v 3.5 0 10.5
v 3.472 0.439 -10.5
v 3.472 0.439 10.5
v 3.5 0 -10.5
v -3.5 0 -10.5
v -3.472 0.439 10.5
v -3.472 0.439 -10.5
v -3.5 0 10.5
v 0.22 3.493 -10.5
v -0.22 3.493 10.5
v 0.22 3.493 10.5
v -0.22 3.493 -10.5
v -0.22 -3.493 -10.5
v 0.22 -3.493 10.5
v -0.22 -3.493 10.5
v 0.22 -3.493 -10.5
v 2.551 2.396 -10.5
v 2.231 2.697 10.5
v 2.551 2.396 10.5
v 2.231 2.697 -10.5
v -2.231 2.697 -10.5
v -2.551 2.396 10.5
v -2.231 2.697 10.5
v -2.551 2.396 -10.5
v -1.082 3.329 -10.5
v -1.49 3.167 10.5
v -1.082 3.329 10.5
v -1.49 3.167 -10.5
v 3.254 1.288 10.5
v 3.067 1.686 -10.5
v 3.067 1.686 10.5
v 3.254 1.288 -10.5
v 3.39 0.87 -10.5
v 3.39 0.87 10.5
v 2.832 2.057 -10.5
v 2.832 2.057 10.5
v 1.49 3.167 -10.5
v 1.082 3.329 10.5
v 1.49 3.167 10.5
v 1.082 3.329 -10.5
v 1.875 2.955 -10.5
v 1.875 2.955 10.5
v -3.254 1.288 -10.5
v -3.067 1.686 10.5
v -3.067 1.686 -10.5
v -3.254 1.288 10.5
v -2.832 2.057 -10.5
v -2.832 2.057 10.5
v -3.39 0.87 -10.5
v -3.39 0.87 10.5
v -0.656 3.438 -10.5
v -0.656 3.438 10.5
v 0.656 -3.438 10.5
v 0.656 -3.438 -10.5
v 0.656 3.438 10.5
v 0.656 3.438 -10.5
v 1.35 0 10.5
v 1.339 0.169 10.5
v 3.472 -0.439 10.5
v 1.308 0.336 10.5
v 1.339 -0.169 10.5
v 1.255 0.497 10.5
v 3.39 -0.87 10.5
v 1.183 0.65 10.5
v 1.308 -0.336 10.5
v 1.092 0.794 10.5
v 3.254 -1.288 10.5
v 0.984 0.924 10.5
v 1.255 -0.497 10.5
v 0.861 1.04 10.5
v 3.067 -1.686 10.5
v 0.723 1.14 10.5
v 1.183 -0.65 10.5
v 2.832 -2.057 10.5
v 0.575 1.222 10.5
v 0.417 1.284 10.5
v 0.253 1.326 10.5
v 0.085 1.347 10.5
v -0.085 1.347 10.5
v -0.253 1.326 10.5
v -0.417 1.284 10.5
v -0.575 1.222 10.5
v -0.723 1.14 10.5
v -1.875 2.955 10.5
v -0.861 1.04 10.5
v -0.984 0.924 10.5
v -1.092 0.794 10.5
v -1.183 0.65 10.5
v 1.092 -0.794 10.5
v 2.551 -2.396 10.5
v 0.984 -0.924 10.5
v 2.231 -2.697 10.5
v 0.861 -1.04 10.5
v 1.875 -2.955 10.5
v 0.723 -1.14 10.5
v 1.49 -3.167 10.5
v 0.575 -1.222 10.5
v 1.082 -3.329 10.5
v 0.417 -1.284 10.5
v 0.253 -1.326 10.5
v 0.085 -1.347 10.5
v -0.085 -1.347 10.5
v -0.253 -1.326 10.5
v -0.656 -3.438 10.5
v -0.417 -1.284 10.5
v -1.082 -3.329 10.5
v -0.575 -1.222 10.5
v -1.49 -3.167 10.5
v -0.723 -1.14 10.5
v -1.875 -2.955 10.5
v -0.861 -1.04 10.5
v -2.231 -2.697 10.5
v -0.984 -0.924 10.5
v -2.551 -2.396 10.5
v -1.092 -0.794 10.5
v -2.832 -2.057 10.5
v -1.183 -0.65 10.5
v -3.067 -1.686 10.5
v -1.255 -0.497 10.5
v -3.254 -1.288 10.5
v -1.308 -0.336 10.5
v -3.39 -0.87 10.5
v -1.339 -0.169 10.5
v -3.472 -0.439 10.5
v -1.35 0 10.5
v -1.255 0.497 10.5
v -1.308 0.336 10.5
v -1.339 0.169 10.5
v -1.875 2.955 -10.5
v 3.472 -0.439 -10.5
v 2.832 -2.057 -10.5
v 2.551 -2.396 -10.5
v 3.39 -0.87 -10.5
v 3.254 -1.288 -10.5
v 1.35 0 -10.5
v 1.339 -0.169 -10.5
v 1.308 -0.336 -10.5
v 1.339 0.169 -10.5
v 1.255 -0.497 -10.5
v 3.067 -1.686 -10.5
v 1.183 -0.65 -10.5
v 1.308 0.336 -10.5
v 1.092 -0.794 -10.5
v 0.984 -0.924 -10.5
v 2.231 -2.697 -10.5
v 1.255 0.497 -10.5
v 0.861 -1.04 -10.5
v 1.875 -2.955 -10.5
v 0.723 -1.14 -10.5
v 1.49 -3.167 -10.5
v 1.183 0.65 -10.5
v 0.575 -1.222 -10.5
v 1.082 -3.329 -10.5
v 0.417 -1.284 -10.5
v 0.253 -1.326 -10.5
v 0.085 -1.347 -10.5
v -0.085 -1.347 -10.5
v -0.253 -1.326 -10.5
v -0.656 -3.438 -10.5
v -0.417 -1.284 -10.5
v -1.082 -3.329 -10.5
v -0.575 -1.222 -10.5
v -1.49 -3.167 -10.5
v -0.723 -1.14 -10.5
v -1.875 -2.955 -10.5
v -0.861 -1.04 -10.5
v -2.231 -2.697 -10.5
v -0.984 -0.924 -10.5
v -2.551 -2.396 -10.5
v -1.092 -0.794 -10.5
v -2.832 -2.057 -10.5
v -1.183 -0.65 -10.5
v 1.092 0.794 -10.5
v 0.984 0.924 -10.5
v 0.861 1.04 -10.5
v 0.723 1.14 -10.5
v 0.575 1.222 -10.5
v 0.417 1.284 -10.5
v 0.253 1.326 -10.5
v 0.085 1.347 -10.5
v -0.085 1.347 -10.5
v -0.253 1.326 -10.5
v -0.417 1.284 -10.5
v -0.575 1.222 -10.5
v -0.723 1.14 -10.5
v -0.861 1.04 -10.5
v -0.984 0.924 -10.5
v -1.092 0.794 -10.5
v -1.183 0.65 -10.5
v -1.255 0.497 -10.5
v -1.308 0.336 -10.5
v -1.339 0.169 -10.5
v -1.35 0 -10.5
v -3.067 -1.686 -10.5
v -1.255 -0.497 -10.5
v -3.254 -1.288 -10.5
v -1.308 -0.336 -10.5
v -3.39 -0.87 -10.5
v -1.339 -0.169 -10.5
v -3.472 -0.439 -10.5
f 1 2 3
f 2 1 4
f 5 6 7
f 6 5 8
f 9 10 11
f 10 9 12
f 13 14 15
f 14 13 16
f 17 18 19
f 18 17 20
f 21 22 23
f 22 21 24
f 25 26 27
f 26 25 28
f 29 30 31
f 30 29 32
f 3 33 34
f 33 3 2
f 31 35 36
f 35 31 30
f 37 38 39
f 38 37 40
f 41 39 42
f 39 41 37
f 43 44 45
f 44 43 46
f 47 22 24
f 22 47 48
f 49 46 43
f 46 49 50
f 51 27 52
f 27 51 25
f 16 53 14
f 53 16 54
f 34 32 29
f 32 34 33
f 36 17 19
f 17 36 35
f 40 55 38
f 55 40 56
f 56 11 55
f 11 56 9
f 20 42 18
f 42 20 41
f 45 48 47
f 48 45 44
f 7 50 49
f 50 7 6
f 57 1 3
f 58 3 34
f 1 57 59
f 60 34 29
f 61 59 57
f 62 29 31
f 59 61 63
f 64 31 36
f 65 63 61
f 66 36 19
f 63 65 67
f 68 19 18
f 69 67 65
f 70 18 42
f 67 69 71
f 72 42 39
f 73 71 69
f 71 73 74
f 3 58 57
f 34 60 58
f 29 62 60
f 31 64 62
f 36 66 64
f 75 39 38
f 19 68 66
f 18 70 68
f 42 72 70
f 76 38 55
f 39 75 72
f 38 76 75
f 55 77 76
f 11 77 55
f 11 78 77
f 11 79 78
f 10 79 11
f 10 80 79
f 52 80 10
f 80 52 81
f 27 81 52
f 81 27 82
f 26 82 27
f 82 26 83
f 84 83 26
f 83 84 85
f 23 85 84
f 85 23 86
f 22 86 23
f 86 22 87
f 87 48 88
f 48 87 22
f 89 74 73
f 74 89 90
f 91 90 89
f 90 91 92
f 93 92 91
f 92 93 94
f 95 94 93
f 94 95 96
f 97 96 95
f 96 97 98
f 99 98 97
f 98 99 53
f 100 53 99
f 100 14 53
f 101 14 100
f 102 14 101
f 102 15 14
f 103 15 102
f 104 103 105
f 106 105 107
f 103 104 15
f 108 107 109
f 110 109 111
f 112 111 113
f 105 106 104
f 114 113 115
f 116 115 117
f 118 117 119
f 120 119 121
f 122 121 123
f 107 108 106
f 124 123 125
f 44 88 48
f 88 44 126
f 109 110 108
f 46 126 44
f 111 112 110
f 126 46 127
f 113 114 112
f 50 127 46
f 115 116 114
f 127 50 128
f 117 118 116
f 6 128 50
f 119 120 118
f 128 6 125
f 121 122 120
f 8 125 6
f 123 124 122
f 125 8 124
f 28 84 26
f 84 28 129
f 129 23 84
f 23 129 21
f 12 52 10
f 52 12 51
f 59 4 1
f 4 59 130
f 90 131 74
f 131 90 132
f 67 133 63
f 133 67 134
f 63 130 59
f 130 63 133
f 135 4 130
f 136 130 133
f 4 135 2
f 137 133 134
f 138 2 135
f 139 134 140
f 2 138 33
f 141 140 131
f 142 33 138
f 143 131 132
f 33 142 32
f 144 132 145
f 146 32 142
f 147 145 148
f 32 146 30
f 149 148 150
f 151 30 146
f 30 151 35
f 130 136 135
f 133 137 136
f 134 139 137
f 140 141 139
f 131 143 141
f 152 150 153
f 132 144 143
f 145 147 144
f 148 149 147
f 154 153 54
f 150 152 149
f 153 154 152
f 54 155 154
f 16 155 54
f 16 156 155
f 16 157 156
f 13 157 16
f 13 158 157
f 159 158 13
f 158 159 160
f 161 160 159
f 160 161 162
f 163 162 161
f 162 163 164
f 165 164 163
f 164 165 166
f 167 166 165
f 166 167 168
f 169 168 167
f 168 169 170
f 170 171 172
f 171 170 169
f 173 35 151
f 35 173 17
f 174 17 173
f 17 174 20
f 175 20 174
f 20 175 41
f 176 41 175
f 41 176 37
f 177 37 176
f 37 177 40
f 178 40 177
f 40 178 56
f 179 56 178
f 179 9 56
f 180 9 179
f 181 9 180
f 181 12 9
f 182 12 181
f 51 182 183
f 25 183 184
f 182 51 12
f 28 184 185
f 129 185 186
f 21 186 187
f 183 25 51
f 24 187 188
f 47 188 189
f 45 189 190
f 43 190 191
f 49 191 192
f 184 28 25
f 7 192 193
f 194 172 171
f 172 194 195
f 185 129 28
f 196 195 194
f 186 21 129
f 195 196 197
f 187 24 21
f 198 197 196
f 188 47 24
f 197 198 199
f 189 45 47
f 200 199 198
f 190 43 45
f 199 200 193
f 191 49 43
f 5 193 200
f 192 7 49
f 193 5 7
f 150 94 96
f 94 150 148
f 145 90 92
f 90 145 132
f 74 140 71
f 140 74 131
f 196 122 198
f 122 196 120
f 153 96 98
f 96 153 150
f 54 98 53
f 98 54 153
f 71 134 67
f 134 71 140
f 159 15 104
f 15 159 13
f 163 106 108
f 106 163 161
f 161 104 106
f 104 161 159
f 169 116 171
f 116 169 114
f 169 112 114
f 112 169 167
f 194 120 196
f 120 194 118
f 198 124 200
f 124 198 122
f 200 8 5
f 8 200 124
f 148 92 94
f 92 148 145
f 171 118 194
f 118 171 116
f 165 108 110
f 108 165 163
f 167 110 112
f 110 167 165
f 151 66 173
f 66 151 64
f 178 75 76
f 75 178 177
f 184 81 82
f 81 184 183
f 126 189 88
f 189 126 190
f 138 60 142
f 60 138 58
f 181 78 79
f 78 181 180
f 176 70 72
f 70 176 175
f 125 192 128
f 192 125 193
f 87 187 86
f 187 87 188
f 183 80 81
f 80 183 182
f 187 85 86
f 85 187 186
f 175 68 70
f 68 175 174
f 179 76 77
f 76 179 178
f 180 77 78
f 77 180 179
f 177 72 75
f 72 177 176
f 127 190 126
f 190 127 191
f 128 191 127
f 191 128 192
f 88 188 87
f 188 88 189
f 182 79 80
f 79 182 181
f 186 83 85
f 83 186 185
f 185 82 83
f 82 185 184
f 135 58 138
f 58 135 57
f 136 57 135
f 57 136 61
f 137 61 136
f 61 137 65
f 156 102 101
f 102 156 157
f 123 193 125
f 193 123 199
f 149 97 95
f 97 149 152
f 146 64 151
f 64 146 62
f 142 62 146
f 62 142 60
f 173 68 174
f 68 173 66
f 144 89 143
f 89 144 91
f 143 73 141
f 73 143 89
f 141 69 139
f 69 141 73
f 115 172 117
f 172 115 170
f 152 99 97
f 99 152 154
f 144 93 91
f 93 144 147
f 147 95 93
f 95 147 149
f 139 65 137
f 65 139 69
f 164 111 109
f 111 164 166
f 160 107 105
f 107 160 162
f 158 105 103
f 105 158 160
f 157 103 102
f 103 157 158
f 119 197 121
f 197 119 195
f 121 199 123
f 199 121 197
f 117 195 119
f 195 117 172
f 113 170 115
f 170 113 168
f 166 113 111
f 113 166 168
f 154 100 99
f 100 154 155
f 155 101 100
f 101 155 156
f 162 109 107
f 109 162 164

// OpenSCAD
$fn = 50;


difference() {
	union() {
		translate(v = [0, 0, -10.5000000000]) {
			cylinder(h = 21, r = 3.5000000000);
		}
	}
	union() {
		translate(v = [0, 0, -100.0000000000]) {
			cylinder(h = 200, r = 1.3500000000);
		}
	}
}
